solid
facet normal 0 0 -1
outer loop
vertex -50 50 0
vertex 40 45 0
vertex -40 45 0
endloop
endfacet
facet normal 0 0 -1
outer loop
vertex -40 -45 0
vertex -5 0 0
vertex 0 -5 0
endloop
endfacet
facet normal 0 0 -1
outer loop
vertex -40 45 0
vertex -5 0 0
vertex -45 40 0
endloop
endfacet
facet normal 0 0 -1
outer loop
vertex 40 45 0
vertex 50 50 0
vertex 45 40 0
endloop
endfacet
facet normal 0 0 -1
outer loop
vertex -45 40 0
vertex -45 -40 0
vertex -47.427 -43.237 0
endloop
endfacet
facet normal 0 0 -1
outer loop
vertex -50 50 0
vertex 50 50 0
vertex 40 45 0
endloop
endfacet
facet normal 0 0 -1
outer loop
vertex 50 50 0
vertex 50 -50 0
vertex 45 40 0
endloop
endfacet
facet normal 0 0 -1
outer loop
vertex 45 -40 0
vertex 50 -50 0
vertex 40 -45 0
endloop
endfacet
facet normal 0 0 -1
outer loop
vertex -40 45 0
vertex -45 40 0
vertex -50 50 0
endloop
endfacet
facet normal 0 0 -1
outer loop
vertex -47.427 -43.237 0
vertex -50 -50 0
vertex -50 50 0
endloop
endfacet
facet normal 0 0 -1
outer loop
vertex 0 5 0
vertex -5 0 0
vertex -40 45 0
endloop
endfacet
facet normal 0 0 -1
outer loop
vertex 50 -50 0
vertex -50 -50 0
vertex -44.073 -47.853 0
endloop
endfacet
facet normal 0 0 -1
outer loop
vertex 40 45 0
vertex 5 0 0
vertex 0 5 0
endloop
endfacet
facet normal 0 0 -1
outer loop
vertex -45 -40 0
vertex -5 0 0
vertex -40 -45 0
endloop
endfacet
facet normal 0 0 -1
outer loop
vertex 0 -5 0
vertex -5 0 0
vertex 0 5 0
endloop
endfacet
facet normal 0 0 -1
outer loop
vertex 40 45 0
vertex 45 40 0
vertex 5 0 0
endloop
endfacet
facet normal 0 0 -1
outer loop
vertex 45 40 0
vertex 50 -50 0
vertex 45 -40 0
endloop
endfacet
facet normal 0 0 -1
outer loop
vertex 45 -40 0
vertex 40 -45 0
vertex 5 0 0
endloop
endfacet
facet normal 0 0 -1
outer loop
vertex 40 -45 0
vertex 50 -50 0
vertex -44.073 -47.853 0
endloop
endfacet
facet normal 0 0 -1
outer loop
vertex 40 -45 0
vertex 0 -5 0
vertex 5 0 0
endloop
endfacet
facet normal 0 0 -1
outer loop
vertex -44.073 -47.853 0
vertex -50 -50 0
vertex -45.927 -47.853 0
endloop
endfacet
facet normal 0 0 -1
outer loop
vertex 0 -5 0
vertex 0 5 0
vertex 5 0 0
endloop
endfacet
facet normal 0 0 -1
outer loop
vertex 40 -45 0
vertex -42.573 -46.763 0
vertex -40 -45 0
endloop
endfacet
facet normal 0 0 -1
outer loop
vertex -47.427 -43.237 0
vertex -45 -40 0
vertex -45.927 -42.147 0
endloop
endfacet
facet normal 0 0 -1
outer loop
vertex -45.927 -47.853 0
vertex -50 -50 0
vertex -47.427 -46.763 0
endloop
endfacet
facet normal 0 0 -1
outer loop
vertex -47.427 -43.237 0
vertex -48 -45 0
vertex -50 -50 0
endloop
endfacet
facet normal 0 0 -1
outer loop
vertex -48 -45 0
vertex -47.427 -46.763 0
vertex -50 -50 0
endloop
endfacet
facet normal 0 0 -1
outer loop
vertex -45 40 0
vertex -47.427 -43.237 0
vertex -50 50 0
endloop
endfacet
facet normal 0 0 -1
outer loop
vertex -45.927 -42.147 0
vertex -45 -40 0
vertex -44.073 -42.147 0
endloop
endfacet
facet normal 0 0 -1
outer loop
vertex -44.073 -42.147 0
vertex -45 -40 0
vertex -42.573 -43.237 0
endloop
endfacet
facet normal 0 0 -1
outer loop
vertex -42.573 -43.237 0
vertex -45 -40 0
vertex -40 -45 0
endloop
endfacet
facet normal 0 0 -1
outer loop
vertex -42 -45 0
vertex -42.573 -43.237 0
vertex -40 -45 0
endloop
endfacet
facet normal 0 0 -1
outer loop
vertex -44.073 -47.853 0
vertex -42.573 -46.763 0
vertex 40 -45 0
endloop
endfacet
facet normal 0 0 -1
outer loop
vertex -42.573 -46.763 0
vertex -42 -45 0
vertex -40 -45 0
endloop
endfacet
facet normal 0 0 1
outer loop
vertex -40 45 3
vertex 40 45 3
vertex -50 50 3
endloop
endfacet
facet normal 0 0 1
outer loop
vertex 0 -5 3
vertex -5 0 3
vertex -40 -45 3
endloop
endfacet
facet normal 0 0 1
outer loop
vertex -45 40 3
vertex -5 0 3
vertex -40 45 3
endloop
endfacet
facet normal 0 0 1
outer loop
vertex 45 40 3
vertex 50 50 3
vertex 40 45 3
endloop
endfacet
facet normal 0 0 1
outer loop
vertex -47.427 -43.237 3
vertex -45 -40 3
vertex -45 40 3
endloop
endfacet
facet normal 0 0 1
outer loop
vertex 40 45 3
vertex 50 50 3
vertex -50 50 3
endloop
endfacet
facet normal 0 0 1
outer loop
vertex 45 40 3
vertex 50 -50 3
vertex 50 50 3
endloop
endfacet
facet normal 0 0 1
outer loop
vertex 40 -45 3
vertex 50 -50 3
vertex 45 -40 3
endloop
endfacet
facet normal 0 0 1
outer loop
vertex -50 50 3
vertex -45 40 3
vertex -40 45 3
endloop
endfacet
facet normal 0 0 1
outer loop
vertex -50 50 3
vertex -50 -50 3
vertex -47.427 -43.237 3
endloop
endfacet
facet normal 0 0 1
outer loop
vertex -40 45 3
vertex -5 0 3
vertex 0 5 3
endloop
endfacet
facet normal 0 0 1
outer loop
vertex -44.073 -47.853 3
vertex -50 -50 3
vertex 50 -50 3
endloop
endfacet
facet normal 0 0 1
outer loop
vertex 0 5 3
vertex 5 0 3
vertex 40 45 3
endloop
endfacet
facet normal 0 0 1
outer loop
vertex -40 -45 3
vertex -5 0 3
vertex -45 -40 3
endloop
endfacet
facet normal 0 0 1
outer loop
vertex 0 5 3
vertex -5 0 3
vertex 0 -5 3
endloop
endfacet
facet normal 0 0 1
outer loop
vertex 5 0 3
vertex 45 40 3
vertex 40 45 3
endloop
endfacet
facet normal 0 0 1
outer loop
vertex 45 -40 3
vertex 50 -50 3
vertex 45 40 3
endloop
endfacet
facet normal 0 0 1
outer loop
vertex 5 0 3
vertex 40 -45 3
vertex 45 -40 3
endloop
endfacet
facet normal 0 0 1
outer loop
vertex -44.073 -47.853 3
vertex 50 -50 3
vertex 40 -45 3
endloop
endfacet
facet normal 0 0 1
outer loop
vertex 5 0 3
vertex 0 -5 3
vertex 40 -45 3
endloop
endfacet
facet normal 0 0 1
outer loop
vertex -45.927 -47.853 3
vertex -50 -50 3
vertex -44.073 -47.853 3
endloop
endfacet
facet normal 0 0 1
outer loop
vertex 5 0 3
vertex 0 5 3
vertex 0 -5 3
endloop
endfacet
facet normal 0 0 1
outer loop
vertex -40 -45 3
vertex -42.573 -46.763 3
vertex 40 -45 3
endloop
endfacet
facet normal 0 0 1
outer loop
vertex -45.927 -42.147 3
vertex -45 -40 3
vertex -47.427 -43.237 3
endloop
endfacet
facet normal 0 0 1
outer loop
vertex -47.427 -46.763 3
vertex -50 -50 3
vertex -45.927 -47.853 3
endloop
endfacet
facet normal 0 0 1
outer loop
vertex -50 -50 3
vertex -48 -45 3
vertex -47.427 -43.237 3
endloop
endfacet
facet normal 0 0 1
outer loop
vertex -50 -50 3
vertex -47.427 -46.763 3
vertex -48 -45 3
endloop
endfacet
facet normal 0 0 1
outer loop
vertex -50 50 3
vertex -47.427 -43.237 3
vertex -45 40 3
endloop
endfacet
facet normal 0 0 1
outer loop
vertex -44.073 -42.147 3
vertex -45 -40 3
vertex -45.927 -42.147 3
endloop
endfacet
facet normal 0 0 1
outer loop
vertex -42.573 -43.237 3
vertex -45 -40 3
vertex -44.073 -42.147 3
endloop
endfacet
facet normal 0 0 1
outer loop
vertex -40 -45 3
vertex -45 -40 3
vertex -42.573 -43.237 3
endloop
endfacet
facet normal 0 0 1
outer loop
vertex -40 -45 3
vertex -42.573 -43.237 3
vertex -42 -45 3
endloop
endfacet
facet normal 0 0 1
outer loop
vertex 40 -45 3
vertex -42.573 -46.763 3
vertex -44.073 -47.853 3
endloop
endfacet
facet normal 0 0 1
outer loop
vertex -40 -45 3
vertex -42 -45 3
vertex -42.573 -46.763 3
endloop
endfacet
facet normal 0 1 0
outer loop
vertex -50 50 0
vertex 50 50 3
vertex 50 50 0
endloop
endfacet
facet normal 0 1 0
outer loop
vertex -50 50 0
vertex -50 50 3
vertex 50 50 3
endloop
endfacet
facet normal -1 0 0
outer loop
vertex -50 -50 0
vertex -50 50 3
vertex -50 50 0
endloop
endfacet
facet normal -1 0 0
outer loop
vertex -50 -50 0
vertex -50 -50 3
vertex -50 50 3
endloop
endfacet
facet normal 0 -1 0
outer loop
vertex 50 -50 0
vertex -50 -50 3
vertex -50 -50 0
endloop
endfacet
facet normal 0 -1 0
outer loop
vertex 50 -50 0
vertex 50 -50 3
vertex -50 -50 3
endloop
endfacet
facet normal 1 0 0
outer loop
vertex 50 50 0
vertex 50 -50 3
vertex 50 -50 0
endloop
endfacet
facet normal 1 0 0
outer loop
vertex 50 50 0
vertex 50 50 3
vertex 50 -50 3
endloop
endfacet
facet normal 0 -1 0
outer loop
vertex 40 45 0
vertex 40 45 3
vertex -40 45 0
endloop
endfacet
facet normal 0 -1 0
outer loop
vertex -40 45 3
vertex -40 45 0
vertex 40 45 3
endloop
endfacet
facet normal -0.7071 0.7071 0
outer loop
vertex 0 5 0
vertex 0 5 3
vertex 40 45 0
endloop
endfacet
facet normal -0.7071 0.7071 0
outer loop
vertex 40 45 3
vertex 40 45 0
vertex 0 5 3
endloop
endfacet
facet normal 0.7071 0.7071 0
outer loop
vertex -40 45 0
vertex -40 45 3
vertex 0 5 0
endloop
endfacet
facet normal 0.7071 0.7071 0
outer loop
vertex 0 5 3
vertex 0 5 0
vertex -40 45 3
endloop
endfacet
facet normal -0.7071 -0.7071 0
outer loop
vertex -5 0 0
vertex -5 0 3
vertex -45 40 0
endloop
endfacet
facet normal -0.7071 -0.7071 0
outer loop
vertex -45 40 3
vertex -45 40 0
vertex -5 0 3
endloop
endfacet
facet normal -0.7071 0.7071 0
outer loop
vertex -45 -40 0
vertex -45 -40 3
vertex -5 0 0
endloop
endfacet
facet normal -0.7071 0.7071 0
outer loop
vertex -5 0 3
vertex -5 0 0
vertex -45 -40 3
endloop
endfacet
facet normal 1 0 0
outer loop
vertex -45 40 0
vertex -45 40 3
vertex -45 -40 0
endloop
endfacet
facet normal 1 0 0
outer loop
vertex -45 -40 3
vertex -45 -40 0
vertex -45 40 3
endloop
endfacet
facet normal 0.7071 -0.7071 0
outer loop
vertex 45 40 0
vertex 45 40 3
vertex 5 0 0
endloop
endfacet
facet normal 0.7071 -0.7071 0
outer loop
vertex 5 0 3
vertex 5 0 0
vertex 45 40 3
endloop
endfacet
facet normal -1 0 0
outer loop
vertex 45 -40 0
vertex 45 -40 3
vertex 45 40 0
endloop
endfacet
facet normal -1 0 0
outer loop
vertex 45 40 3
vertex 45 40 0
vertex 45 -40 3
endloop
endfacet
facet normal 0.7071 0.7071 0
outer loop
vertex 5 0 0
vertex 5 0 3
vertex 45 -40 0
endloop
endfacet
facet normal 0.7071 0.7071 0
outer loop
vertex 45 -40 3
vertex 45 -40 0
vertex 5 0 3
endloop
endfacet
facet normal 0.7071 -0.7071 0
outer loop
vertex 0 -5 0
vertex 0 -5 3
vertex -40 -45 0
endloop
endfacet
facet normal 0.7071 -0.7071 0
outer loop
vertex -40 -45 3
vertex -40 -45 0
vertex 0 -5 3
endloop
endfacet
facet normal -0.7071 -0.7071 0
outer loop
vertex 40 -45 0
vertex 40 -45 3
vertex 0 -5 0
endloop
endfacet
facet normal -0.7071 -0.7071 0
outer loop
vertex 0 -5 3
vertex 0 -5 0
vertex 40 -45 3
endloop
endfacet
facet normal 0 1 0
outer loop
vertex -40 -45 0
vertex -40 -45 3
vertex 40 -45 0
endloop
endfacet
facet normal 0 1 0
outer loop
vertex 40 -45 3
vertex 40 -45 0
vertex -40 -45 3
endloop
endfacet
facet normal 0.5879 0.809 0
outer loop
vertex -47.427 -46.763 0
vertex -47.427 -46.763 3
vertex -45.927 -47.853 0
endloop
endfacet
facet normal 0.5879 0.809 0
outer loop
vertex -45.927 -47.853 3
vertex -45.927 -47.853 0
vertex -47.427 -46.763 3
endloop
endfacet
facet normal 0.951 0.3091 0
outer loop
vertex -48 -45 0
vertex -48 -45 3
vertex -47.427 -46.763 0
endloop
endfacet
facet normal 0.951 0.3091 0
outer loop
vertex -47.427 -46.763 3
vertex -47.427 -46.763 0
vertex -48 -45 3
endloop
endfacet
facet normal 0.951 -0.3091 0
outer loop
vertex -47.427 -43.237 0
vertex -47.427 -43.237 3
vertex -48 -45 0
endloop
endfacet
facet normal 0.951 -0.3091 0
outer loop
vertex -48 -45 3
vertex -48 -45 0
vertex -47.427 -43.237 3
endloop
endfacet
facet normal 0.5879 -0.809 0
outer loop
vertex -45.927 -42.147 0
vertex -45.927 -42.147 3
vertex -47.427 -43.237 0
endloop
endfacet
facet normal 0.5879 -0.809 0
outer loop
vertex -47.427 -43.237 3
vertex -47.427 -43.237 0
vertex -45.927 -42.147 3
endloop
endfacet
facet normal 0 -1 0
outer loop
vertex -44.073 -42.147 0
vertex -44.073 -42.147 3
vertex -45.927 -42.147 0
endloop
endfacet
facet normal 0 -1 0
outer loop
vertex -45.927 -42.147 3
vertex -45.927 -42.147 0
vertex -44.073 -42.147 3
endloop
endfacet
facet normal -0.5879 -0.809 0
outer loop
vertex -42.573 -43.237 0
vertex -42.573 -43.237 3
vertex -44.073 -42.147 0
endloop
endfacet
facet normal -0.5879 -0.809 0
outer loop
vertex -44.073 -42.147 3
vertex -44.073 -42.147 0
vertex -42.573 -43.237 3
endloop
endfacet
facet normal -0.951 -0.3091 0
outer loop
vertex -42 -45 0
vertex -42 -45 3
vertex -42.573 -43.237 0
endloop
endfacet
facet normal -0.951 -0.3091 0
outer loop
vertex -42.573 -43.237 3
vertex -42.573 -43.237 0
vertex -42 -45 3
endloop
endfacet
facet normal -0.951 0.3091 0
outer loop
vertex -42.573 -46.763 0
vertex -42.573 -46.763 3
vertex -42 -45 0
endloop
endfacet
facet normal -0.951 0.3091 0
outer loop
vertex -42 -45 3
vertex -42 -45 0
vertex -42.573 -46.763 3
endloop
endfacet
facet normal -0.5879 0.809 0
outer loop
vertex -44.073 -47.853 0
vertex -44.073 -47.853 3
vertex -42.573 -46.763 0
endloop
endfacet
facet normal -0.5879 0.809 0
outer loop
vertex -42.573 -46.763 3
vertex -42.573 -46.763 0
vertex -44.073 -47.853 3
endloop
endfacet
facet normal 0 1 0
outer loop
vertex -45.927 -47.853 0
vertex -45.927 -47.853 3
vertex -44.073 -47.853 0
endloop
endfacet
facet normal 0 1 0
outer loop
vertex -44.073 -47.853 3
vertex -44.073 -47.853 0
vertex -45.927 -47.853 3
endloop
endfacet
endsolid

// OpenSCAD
outer_width = 100;
inner_width = 80;
border_thickness = outer_width - inner_width;
anchor_diameter = 3;

module triangle(width, height) {
    polygon(points = [[0, -width/2], [0, width/2], [height, 0]]);
}

linear_extrude(3) difference(){
    square(outer_width, center = true);
    translate([-inner_width/2-border_thickness/4, 0, 0]) triangle(inner_width, inner_width/2);
    translate([0, -inner_width/2-border_thickness/4, 0]) rotate([0, 0, 90]) triangle(inner_width, inner_width/2);
    translate([inner_width/2+border_thickness/4, 0, 0]) rotate([0, 0, 180]) triangle(inner_width, inner_width/2);
    translate([0, inner_width/2+border_thickness/4, 0]) rotate([0, 0, 270]) triangle(inner_width, inner_width/2);
    translate([-inner_width/2-border_thickness/4, -inner_width/2-border_thickness/4, 0]) circle(anchor_diameter);
}
